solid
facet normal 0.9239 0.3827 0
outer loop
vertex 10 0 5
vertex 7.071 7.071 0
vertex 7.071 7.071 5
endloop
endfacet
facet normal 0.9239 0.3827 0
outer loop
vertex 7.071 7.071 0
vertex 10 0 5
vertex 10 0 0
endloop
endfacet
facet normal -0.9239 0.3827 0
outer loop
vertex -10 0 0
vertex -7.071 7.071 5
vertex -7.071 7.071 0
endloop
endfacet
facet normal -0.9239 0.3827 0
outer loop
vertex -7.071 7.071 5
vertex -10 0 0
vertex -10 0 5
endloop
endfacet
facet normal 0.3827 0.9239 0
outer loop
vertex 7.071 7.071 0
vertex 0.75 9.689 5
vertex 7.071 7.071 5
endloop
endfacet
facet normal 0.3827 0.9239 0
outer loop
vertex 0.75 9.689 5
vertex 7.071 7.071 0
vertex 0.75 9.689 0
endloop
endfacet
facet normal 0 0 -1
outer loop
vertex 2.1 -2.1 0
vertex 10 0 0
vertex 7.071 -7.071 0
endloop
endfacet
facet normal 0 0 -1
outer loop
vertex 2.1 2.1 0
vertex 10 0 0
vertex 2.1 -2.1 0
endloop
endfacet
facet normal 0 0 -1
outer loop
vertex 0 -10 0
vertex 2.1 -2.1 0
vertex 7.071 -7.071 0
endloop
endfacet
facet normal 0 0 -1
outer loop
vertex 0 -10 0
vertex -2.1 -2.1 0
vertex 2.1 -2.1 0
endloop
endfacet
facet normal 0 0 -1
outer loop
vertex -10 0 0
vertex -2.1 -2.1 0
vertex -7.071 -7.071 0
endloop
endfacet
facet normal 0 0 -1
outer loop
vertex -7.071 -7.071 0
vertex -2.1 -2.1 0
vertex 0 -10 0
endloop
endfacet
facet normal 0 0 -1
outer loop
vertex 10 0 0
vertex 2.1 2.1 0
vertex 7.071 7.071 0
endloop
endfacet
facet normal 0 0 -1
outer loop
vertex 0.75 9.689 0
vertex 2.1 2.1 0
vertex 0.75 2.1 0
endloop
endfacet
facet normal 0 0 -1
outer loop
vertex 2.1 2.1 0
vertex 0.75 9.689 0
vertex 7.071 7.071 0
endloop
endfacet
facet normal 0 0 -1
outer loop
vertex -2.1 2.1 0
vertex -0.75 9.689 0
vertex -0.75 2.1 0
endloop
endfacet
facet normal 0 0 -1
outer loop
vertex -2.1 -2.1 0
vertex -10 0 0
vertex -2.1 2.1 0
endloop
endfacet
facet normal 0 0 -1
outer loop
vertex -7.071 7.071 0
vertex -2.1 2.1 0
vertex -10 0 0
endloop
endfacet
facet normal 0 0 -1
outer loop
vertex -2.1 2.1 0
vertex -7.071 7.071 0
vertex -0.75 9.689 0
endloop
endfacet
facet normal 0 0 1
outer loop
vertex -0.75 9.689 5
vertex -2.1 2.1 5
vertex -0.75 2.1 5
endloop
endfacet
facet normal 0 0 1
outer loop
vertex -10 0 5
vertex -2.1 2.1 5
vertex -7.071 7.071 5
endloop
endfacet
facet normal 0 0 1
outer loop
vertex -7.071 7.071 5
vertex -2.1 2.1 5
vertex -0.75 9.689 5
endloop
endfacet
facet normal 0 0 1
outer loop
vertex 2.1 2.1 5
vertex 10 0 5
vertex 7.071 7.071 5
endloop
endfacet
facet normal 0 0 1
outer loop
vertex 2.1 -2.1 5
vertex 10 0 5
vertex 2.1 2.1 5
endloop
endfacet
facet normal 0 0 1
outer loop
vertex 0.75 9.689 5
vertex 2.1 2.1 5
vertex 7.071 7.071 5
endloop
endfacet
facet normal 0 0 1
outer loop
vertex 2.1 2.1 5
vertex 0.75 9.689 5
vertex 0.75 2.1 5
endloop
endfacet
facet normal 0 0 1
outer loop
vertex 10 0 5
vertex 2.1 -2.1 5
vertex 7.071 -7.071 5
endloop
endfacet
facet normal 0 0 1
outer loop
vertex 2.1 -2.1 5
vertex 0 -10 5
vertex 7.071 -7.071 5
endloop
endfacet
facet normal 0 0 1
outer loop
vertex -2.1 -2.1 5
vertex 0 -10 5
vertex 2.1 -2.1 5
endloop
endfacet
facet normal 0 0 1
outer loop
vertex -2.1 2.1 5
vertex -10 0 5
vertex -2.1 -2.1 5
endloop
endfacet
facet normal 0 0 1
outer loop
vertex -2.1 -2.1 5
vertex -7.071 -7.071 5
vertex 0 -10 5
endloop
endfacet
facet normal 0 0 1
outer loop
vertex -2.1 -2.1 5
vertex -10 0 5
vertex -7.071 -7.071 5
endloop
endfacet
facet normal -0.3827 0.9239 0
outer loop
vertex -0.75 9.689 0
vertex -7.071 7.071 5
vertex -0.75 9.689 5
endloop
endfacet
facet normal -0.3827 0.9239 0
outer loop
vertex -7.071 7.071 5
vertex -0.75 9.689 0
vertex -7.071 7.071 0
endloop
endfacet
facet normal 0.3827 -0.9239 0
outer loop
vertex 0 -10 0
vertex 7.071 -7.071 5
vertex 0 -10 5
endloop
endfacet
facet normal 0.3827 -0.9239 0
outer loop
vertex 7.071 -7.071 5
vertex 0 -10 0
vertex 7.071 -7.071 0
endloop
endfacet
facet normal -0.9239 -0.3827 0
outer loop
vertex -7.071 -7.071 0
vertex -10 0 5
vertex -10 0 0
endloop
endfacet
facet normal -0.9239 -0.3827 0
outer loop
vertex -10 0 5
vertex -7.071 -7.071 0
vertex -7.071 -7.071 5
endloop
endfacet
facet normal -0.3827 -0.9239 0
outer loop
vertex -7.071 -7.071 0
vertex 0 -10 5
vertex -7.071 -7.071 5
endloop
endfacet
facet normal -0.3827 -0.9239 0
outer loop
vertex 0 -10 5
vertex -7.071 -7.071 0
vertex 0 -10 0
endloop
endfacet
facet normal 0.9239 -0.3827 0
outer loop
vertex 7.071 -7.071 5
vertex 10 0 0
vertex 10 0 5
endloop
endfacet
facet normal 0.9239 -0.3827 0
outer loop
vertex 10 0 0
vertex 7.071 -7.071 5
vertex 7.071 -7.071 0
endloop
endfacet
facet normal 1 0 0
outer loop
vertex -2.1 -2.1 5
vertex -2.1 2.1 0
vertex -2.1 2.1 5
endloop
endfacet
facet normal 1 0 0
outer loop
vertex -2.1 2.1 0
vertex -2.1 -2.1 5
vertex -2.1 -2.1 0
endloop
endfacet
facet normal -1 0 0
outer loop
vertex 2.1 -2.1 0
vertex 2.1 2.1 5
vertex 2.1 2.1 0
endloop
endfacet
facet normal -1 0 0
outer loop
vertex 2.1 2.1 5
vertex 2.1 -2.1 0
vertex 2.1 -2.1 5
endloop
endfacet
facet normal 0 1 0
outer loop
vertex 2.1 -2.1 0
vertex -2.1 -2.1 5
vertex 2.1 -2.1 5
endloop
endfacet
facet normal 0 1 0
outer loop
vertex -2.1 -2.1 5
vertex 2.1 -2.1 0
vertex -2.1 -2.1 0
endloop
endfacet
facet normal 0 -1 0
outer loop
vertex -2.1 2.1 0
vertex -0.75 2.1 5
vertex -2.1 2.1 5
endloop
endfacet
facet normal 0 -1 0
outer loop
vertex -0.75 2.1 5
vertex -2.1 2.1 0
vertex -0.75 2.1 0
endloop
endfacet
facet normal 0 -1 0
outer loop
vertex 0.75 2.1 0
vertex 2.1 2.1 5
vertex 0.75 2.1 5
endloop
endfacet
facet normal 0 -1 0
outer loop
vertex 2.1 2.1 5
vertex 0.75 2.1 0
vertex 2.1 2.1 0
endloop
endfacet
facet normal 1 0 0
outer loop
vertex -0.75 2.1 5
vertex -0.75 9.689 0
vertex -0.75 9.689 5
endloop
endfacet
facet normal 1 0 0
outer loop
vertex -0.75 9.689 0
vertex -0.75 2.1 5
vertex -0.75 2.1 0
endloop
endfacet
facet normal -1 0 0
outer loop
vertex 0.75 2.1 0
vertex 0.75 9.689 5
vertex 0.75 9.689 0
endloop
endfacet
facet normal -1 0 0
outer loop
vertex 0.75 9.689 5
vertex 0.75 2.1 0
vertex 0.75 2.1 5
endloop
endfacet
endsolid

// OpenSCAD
//needle wrench

difference()  {
    cylinder(d=20, h=5, $fn=8);
    translate([-4.2/2, -4.2/2, -1]) cube([4.2, 4.2, 7]);
    translate([-0.75, 0, -1]) cube([1.5, 20, 7]);
}
